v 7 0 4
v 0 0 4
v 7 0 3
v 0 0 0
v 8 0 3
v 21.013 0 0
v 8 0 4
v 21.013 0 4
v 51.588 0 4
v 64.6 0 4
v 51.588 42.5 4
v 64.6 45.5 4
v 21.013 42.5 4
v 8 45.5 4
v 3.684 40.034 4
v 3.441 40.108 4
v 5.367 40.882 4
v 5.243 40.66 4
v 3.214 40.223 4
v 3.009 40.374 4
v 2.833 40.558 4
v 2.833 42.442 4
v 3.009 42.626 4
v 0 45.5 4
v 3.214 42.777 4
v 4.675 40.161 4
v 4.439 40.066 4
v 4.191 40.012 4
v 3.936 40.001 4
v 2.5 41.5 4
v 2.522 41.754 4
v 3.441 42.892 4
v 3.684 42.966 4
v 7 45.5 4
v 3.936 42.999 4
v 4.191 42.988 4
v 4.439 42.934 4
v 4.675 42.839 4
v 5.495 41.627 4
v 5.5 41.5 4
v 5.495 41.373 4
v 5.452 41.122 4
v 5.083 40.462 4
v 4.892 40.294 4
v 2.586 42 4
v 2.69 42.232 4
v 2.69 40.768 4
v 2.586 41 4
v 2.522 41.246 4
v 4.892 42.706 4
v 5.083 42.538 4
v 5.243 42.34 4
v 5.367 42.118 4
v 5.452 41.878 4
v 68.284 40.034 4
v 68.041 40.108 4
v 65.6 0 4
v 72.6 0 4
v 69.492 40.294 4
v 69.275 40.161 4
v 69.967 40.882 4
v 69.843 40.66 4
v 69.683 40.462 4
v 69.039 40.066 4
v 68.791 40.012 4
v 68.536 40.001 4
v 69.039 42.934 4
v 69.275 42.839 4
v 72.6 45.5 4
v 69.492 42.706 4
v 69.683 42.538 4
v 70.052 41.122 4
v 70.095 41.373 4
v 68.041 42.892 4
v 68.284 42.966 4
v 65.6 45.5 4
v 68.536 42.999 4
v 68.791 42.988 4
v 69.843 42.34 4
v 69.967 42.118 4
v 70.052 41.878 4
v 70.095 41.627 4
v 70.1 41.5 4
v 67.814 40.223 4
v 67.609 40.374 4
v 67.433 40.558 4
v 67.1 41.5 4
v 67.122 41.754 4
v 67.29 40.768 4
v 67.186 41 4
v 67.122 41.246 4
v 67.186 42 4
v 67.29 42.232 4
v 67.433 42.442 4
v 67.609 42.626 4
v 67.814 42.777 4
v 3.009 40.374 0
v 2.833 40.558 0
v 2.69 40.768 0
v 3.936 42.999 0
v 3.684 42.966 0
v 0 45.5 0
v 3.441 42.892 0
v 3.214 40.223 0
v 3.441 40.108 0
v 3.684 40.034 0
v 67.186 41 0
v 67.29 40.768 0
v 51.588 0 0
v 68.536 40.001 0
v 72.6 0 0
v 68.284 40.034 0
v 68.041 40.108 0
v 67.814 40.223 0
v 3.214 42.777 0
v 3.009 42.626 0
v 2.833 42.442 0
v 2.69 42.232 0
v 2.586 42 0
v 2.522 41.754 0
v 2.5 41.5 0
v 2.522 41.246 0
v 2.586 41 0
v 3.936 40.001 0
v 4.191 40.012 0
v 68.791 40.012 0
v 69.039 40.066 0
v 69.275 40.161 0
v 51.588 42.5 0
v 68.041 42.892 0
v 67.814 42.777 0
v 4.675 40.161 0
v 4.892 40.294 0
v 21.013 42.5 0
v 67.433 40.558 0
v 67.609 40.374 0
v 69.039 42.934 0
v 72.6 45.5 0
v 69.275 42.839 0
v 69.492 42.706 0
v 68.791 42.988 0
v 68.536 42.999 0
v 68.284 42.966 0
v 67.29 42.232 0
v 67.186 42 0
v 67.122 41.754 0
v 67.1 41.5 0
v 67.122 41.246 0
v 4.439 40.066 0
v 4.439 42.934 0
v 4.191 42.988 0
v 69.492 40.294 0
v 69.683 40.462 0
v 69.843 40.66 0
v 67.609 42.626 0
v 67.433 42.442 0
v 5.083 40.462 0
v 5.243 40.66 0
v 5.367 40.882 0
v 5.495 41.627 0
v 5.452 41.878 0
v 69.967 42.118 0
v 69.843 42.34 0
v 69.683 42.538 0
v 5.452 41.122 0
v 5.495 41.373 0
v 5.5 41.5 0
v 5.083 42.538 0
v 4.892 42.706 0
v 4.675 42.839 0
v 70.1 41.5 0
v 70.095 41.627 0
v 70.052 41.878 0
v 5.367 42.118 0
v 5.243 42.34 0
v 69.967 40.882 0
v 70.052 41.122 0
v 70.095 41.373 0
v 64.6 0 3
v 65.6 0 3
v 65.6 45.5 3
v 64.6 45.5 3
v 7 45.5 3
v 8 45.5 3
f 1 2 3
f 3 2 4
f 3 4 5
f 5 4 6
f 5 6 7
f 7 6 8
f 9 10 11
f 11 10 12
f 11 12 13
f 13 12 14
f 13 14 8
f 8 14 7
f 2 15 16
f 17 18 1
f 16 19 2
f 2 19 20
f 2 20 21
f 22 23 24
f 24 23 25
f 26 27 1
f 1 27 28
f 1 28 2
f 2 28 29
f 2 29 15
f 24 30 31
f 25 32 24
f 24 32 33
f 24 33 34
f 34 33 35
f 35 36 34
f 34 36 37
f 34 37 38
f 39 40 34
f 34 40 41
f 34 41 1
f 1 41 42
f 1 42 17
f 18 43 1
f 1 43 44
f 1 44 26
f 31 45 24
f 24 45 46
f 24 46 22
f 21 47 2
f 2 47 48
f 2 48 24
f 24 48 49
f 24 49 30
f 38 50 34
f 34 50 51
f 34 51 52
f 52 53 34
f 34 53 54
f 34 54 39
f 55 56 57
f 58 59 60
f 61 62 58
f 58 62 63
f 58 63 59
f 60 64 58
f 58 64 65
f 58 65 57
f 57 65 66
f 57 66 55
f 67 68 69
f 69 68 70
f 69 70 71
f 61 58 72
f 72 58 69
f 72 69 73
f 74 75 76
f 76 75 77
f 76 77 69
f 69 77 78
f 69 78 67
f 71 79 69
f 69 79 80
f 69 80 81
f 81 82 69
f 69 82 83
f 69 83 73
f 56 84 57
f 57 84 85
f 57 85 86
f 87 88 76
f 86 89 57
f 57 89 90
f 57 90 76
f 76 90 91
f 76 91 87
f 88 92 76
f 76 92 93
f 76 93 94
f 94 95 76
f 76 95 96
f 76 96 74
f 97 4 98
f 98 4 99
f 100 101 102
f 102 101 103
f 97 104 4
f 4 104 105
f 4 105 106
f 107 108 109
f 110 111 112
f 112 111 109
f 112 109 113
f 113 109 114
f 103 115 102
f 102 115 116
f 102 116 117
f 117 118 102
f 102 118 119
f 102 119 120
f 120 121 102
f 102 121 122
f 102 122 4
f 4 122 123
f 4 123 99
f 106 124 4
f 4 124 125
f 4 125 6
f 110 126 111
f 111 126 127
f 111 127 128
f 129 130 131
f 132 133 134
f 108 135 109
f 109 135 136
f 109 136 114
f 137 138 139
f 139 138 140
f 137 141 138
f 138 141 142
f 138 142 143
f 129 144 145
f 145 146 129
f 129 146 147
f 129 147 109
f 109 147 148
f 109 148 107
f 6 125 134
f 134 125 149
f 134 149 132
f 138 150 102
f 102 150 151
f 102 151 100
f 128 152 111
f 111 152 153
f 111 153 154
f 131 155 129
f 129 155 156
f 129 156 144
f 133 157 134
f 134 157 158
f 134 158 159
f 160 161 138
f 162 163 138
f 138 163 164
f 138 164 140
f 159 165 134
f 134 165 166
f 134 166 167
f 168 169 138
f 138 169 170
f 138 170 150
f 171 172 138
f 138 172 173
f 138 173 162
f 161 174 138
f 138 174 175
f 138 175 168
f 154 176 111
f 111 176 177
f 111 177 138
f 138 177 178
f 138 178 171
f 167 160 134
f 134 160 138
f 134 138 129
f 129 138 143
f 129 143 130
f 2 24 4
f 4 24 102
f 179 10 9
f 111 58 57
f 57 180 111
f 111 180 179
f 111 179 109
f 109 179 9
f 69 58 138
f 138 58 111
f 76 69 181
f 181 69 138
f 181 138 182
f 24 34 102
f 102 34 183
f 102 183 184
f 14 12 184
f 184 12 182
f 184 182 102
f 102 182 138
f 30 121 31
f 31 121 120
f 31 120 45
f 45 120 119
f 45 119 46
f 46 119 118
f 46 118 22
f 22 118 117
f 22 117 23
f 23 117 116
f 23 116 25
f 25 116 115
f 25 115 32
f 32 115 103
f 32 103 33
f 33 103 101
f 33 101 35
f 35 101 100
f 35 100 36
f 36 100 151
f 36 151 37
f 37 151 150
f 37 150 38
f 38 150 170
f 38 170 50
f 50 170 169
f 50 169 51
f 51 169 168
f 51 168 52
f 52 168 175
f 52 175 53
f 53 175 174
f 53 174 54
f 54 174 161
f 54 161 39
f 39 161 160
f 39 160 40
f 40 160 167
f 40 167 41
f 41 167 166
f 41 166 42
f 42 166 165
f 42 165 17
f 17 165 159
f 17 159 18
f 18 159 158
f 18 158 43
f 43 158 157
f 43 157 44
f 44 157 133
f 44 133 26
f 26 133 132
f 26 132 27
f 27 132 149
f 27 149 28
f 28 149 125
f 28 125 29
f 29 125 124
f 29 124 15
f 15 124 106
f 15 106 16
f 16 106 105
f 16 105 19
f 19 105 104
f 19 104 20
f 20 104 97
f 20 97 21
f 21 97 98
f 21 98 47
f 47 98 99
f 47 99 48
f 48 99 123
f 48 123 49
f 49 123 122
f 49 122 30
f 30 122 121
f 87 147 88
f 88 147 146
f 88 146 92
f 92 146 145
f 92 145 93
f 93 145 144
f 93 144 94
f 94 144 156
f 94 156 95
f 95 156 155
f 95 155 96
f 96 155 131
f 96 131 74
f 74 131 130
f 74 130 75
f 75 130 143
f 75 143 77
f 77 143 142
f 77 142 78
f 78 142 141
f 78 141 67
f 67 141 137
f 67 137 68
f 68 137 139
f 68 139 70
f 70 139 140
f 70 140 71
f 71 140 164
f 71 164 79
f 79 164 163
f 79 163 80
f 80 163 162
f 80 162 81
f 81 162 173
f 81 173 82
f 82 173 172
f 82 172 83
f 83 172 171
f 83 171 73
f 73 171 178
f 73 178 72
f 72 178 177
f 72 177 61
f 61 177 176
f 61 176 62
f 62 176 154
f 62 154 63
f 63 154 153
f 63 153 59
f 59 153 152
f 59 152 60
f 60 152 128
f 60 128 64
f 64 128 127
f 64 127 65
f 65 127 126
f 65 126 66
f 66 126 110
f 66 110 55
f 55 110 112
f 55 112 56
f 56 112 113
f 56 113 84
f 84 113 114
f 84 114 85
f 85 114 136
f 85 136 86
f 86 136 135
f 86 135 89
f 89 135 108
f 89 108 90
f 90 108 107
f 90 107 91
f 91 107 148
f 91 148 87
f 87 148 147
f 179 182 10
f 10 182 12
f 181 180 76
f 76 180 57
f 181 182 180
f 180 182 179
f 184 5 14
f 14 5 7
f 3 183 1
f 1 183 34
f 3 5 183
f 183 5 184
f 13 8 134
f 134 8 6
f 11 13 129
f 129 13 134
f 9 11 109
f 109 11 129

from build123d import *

# Parameters (mm, degrees)
SKETCH1_W           = 72.6
SKETCH1_H           = 45.5
SKETCH1_R           = 1.5
BOSS_EXTRUDE1_DEPTH = 4
SKETCH2_W           = 1
SKETCH2_H           = 45.5
CUT_EXTRUDE1_DEPTH  = 1
SKETCH3_W           = 30.575
SKETCH3_H           = 42.5
CUT_EXTRUDE2_DEPTH  = 4


with BuildPart() as part:
    # Sketch1 → Boss-Extrude1 (new body)
    with BuildSketch(Plane.XY):
        with Locations((36.3, 22.75)):
            Rectangle(SKETCH1_W, SKETCH1_H)
        with Locations((4, 41.5)):
            Circle(SKETCH1_R, mode=Mode.SUBTRACT)
        with Locations((68.6, 41.5)):
            Circle(SKETCH1_R, mode=Mode.SUBTRACT)
    extrude(amount=BOSS_EXTRUDE1_DEPTH)

    # Sketch2 → Cut-Extrude1 (cut)
    with BuildSketch(Plane.XY.offset(4)):
        with Locations((7.5, 22.75)):
            Rectangle(SKETCH2_W, SKETCH2_H)
        with Locations((65.1, 22.75)):
            Rectangle(SKETCH2_W, SKETCH2_H)
    extrude(amount=-CUT_EXTRUDE1_DEPTH, mode=Mode.SUBTRACT)

    # Sketch3 → Cut-Extrude2 (cut)
    with BuildSketch(Plane.XY.offset(4)):
        with Locations((36.3, 21.25)):
            Rectangle(SKETCH3_W, SKETCH3_H)
    extrude(amount=-CUT_EXTRUDE2_DEPTH, mode=Mode.SUBTRACT)


solid = part.part
